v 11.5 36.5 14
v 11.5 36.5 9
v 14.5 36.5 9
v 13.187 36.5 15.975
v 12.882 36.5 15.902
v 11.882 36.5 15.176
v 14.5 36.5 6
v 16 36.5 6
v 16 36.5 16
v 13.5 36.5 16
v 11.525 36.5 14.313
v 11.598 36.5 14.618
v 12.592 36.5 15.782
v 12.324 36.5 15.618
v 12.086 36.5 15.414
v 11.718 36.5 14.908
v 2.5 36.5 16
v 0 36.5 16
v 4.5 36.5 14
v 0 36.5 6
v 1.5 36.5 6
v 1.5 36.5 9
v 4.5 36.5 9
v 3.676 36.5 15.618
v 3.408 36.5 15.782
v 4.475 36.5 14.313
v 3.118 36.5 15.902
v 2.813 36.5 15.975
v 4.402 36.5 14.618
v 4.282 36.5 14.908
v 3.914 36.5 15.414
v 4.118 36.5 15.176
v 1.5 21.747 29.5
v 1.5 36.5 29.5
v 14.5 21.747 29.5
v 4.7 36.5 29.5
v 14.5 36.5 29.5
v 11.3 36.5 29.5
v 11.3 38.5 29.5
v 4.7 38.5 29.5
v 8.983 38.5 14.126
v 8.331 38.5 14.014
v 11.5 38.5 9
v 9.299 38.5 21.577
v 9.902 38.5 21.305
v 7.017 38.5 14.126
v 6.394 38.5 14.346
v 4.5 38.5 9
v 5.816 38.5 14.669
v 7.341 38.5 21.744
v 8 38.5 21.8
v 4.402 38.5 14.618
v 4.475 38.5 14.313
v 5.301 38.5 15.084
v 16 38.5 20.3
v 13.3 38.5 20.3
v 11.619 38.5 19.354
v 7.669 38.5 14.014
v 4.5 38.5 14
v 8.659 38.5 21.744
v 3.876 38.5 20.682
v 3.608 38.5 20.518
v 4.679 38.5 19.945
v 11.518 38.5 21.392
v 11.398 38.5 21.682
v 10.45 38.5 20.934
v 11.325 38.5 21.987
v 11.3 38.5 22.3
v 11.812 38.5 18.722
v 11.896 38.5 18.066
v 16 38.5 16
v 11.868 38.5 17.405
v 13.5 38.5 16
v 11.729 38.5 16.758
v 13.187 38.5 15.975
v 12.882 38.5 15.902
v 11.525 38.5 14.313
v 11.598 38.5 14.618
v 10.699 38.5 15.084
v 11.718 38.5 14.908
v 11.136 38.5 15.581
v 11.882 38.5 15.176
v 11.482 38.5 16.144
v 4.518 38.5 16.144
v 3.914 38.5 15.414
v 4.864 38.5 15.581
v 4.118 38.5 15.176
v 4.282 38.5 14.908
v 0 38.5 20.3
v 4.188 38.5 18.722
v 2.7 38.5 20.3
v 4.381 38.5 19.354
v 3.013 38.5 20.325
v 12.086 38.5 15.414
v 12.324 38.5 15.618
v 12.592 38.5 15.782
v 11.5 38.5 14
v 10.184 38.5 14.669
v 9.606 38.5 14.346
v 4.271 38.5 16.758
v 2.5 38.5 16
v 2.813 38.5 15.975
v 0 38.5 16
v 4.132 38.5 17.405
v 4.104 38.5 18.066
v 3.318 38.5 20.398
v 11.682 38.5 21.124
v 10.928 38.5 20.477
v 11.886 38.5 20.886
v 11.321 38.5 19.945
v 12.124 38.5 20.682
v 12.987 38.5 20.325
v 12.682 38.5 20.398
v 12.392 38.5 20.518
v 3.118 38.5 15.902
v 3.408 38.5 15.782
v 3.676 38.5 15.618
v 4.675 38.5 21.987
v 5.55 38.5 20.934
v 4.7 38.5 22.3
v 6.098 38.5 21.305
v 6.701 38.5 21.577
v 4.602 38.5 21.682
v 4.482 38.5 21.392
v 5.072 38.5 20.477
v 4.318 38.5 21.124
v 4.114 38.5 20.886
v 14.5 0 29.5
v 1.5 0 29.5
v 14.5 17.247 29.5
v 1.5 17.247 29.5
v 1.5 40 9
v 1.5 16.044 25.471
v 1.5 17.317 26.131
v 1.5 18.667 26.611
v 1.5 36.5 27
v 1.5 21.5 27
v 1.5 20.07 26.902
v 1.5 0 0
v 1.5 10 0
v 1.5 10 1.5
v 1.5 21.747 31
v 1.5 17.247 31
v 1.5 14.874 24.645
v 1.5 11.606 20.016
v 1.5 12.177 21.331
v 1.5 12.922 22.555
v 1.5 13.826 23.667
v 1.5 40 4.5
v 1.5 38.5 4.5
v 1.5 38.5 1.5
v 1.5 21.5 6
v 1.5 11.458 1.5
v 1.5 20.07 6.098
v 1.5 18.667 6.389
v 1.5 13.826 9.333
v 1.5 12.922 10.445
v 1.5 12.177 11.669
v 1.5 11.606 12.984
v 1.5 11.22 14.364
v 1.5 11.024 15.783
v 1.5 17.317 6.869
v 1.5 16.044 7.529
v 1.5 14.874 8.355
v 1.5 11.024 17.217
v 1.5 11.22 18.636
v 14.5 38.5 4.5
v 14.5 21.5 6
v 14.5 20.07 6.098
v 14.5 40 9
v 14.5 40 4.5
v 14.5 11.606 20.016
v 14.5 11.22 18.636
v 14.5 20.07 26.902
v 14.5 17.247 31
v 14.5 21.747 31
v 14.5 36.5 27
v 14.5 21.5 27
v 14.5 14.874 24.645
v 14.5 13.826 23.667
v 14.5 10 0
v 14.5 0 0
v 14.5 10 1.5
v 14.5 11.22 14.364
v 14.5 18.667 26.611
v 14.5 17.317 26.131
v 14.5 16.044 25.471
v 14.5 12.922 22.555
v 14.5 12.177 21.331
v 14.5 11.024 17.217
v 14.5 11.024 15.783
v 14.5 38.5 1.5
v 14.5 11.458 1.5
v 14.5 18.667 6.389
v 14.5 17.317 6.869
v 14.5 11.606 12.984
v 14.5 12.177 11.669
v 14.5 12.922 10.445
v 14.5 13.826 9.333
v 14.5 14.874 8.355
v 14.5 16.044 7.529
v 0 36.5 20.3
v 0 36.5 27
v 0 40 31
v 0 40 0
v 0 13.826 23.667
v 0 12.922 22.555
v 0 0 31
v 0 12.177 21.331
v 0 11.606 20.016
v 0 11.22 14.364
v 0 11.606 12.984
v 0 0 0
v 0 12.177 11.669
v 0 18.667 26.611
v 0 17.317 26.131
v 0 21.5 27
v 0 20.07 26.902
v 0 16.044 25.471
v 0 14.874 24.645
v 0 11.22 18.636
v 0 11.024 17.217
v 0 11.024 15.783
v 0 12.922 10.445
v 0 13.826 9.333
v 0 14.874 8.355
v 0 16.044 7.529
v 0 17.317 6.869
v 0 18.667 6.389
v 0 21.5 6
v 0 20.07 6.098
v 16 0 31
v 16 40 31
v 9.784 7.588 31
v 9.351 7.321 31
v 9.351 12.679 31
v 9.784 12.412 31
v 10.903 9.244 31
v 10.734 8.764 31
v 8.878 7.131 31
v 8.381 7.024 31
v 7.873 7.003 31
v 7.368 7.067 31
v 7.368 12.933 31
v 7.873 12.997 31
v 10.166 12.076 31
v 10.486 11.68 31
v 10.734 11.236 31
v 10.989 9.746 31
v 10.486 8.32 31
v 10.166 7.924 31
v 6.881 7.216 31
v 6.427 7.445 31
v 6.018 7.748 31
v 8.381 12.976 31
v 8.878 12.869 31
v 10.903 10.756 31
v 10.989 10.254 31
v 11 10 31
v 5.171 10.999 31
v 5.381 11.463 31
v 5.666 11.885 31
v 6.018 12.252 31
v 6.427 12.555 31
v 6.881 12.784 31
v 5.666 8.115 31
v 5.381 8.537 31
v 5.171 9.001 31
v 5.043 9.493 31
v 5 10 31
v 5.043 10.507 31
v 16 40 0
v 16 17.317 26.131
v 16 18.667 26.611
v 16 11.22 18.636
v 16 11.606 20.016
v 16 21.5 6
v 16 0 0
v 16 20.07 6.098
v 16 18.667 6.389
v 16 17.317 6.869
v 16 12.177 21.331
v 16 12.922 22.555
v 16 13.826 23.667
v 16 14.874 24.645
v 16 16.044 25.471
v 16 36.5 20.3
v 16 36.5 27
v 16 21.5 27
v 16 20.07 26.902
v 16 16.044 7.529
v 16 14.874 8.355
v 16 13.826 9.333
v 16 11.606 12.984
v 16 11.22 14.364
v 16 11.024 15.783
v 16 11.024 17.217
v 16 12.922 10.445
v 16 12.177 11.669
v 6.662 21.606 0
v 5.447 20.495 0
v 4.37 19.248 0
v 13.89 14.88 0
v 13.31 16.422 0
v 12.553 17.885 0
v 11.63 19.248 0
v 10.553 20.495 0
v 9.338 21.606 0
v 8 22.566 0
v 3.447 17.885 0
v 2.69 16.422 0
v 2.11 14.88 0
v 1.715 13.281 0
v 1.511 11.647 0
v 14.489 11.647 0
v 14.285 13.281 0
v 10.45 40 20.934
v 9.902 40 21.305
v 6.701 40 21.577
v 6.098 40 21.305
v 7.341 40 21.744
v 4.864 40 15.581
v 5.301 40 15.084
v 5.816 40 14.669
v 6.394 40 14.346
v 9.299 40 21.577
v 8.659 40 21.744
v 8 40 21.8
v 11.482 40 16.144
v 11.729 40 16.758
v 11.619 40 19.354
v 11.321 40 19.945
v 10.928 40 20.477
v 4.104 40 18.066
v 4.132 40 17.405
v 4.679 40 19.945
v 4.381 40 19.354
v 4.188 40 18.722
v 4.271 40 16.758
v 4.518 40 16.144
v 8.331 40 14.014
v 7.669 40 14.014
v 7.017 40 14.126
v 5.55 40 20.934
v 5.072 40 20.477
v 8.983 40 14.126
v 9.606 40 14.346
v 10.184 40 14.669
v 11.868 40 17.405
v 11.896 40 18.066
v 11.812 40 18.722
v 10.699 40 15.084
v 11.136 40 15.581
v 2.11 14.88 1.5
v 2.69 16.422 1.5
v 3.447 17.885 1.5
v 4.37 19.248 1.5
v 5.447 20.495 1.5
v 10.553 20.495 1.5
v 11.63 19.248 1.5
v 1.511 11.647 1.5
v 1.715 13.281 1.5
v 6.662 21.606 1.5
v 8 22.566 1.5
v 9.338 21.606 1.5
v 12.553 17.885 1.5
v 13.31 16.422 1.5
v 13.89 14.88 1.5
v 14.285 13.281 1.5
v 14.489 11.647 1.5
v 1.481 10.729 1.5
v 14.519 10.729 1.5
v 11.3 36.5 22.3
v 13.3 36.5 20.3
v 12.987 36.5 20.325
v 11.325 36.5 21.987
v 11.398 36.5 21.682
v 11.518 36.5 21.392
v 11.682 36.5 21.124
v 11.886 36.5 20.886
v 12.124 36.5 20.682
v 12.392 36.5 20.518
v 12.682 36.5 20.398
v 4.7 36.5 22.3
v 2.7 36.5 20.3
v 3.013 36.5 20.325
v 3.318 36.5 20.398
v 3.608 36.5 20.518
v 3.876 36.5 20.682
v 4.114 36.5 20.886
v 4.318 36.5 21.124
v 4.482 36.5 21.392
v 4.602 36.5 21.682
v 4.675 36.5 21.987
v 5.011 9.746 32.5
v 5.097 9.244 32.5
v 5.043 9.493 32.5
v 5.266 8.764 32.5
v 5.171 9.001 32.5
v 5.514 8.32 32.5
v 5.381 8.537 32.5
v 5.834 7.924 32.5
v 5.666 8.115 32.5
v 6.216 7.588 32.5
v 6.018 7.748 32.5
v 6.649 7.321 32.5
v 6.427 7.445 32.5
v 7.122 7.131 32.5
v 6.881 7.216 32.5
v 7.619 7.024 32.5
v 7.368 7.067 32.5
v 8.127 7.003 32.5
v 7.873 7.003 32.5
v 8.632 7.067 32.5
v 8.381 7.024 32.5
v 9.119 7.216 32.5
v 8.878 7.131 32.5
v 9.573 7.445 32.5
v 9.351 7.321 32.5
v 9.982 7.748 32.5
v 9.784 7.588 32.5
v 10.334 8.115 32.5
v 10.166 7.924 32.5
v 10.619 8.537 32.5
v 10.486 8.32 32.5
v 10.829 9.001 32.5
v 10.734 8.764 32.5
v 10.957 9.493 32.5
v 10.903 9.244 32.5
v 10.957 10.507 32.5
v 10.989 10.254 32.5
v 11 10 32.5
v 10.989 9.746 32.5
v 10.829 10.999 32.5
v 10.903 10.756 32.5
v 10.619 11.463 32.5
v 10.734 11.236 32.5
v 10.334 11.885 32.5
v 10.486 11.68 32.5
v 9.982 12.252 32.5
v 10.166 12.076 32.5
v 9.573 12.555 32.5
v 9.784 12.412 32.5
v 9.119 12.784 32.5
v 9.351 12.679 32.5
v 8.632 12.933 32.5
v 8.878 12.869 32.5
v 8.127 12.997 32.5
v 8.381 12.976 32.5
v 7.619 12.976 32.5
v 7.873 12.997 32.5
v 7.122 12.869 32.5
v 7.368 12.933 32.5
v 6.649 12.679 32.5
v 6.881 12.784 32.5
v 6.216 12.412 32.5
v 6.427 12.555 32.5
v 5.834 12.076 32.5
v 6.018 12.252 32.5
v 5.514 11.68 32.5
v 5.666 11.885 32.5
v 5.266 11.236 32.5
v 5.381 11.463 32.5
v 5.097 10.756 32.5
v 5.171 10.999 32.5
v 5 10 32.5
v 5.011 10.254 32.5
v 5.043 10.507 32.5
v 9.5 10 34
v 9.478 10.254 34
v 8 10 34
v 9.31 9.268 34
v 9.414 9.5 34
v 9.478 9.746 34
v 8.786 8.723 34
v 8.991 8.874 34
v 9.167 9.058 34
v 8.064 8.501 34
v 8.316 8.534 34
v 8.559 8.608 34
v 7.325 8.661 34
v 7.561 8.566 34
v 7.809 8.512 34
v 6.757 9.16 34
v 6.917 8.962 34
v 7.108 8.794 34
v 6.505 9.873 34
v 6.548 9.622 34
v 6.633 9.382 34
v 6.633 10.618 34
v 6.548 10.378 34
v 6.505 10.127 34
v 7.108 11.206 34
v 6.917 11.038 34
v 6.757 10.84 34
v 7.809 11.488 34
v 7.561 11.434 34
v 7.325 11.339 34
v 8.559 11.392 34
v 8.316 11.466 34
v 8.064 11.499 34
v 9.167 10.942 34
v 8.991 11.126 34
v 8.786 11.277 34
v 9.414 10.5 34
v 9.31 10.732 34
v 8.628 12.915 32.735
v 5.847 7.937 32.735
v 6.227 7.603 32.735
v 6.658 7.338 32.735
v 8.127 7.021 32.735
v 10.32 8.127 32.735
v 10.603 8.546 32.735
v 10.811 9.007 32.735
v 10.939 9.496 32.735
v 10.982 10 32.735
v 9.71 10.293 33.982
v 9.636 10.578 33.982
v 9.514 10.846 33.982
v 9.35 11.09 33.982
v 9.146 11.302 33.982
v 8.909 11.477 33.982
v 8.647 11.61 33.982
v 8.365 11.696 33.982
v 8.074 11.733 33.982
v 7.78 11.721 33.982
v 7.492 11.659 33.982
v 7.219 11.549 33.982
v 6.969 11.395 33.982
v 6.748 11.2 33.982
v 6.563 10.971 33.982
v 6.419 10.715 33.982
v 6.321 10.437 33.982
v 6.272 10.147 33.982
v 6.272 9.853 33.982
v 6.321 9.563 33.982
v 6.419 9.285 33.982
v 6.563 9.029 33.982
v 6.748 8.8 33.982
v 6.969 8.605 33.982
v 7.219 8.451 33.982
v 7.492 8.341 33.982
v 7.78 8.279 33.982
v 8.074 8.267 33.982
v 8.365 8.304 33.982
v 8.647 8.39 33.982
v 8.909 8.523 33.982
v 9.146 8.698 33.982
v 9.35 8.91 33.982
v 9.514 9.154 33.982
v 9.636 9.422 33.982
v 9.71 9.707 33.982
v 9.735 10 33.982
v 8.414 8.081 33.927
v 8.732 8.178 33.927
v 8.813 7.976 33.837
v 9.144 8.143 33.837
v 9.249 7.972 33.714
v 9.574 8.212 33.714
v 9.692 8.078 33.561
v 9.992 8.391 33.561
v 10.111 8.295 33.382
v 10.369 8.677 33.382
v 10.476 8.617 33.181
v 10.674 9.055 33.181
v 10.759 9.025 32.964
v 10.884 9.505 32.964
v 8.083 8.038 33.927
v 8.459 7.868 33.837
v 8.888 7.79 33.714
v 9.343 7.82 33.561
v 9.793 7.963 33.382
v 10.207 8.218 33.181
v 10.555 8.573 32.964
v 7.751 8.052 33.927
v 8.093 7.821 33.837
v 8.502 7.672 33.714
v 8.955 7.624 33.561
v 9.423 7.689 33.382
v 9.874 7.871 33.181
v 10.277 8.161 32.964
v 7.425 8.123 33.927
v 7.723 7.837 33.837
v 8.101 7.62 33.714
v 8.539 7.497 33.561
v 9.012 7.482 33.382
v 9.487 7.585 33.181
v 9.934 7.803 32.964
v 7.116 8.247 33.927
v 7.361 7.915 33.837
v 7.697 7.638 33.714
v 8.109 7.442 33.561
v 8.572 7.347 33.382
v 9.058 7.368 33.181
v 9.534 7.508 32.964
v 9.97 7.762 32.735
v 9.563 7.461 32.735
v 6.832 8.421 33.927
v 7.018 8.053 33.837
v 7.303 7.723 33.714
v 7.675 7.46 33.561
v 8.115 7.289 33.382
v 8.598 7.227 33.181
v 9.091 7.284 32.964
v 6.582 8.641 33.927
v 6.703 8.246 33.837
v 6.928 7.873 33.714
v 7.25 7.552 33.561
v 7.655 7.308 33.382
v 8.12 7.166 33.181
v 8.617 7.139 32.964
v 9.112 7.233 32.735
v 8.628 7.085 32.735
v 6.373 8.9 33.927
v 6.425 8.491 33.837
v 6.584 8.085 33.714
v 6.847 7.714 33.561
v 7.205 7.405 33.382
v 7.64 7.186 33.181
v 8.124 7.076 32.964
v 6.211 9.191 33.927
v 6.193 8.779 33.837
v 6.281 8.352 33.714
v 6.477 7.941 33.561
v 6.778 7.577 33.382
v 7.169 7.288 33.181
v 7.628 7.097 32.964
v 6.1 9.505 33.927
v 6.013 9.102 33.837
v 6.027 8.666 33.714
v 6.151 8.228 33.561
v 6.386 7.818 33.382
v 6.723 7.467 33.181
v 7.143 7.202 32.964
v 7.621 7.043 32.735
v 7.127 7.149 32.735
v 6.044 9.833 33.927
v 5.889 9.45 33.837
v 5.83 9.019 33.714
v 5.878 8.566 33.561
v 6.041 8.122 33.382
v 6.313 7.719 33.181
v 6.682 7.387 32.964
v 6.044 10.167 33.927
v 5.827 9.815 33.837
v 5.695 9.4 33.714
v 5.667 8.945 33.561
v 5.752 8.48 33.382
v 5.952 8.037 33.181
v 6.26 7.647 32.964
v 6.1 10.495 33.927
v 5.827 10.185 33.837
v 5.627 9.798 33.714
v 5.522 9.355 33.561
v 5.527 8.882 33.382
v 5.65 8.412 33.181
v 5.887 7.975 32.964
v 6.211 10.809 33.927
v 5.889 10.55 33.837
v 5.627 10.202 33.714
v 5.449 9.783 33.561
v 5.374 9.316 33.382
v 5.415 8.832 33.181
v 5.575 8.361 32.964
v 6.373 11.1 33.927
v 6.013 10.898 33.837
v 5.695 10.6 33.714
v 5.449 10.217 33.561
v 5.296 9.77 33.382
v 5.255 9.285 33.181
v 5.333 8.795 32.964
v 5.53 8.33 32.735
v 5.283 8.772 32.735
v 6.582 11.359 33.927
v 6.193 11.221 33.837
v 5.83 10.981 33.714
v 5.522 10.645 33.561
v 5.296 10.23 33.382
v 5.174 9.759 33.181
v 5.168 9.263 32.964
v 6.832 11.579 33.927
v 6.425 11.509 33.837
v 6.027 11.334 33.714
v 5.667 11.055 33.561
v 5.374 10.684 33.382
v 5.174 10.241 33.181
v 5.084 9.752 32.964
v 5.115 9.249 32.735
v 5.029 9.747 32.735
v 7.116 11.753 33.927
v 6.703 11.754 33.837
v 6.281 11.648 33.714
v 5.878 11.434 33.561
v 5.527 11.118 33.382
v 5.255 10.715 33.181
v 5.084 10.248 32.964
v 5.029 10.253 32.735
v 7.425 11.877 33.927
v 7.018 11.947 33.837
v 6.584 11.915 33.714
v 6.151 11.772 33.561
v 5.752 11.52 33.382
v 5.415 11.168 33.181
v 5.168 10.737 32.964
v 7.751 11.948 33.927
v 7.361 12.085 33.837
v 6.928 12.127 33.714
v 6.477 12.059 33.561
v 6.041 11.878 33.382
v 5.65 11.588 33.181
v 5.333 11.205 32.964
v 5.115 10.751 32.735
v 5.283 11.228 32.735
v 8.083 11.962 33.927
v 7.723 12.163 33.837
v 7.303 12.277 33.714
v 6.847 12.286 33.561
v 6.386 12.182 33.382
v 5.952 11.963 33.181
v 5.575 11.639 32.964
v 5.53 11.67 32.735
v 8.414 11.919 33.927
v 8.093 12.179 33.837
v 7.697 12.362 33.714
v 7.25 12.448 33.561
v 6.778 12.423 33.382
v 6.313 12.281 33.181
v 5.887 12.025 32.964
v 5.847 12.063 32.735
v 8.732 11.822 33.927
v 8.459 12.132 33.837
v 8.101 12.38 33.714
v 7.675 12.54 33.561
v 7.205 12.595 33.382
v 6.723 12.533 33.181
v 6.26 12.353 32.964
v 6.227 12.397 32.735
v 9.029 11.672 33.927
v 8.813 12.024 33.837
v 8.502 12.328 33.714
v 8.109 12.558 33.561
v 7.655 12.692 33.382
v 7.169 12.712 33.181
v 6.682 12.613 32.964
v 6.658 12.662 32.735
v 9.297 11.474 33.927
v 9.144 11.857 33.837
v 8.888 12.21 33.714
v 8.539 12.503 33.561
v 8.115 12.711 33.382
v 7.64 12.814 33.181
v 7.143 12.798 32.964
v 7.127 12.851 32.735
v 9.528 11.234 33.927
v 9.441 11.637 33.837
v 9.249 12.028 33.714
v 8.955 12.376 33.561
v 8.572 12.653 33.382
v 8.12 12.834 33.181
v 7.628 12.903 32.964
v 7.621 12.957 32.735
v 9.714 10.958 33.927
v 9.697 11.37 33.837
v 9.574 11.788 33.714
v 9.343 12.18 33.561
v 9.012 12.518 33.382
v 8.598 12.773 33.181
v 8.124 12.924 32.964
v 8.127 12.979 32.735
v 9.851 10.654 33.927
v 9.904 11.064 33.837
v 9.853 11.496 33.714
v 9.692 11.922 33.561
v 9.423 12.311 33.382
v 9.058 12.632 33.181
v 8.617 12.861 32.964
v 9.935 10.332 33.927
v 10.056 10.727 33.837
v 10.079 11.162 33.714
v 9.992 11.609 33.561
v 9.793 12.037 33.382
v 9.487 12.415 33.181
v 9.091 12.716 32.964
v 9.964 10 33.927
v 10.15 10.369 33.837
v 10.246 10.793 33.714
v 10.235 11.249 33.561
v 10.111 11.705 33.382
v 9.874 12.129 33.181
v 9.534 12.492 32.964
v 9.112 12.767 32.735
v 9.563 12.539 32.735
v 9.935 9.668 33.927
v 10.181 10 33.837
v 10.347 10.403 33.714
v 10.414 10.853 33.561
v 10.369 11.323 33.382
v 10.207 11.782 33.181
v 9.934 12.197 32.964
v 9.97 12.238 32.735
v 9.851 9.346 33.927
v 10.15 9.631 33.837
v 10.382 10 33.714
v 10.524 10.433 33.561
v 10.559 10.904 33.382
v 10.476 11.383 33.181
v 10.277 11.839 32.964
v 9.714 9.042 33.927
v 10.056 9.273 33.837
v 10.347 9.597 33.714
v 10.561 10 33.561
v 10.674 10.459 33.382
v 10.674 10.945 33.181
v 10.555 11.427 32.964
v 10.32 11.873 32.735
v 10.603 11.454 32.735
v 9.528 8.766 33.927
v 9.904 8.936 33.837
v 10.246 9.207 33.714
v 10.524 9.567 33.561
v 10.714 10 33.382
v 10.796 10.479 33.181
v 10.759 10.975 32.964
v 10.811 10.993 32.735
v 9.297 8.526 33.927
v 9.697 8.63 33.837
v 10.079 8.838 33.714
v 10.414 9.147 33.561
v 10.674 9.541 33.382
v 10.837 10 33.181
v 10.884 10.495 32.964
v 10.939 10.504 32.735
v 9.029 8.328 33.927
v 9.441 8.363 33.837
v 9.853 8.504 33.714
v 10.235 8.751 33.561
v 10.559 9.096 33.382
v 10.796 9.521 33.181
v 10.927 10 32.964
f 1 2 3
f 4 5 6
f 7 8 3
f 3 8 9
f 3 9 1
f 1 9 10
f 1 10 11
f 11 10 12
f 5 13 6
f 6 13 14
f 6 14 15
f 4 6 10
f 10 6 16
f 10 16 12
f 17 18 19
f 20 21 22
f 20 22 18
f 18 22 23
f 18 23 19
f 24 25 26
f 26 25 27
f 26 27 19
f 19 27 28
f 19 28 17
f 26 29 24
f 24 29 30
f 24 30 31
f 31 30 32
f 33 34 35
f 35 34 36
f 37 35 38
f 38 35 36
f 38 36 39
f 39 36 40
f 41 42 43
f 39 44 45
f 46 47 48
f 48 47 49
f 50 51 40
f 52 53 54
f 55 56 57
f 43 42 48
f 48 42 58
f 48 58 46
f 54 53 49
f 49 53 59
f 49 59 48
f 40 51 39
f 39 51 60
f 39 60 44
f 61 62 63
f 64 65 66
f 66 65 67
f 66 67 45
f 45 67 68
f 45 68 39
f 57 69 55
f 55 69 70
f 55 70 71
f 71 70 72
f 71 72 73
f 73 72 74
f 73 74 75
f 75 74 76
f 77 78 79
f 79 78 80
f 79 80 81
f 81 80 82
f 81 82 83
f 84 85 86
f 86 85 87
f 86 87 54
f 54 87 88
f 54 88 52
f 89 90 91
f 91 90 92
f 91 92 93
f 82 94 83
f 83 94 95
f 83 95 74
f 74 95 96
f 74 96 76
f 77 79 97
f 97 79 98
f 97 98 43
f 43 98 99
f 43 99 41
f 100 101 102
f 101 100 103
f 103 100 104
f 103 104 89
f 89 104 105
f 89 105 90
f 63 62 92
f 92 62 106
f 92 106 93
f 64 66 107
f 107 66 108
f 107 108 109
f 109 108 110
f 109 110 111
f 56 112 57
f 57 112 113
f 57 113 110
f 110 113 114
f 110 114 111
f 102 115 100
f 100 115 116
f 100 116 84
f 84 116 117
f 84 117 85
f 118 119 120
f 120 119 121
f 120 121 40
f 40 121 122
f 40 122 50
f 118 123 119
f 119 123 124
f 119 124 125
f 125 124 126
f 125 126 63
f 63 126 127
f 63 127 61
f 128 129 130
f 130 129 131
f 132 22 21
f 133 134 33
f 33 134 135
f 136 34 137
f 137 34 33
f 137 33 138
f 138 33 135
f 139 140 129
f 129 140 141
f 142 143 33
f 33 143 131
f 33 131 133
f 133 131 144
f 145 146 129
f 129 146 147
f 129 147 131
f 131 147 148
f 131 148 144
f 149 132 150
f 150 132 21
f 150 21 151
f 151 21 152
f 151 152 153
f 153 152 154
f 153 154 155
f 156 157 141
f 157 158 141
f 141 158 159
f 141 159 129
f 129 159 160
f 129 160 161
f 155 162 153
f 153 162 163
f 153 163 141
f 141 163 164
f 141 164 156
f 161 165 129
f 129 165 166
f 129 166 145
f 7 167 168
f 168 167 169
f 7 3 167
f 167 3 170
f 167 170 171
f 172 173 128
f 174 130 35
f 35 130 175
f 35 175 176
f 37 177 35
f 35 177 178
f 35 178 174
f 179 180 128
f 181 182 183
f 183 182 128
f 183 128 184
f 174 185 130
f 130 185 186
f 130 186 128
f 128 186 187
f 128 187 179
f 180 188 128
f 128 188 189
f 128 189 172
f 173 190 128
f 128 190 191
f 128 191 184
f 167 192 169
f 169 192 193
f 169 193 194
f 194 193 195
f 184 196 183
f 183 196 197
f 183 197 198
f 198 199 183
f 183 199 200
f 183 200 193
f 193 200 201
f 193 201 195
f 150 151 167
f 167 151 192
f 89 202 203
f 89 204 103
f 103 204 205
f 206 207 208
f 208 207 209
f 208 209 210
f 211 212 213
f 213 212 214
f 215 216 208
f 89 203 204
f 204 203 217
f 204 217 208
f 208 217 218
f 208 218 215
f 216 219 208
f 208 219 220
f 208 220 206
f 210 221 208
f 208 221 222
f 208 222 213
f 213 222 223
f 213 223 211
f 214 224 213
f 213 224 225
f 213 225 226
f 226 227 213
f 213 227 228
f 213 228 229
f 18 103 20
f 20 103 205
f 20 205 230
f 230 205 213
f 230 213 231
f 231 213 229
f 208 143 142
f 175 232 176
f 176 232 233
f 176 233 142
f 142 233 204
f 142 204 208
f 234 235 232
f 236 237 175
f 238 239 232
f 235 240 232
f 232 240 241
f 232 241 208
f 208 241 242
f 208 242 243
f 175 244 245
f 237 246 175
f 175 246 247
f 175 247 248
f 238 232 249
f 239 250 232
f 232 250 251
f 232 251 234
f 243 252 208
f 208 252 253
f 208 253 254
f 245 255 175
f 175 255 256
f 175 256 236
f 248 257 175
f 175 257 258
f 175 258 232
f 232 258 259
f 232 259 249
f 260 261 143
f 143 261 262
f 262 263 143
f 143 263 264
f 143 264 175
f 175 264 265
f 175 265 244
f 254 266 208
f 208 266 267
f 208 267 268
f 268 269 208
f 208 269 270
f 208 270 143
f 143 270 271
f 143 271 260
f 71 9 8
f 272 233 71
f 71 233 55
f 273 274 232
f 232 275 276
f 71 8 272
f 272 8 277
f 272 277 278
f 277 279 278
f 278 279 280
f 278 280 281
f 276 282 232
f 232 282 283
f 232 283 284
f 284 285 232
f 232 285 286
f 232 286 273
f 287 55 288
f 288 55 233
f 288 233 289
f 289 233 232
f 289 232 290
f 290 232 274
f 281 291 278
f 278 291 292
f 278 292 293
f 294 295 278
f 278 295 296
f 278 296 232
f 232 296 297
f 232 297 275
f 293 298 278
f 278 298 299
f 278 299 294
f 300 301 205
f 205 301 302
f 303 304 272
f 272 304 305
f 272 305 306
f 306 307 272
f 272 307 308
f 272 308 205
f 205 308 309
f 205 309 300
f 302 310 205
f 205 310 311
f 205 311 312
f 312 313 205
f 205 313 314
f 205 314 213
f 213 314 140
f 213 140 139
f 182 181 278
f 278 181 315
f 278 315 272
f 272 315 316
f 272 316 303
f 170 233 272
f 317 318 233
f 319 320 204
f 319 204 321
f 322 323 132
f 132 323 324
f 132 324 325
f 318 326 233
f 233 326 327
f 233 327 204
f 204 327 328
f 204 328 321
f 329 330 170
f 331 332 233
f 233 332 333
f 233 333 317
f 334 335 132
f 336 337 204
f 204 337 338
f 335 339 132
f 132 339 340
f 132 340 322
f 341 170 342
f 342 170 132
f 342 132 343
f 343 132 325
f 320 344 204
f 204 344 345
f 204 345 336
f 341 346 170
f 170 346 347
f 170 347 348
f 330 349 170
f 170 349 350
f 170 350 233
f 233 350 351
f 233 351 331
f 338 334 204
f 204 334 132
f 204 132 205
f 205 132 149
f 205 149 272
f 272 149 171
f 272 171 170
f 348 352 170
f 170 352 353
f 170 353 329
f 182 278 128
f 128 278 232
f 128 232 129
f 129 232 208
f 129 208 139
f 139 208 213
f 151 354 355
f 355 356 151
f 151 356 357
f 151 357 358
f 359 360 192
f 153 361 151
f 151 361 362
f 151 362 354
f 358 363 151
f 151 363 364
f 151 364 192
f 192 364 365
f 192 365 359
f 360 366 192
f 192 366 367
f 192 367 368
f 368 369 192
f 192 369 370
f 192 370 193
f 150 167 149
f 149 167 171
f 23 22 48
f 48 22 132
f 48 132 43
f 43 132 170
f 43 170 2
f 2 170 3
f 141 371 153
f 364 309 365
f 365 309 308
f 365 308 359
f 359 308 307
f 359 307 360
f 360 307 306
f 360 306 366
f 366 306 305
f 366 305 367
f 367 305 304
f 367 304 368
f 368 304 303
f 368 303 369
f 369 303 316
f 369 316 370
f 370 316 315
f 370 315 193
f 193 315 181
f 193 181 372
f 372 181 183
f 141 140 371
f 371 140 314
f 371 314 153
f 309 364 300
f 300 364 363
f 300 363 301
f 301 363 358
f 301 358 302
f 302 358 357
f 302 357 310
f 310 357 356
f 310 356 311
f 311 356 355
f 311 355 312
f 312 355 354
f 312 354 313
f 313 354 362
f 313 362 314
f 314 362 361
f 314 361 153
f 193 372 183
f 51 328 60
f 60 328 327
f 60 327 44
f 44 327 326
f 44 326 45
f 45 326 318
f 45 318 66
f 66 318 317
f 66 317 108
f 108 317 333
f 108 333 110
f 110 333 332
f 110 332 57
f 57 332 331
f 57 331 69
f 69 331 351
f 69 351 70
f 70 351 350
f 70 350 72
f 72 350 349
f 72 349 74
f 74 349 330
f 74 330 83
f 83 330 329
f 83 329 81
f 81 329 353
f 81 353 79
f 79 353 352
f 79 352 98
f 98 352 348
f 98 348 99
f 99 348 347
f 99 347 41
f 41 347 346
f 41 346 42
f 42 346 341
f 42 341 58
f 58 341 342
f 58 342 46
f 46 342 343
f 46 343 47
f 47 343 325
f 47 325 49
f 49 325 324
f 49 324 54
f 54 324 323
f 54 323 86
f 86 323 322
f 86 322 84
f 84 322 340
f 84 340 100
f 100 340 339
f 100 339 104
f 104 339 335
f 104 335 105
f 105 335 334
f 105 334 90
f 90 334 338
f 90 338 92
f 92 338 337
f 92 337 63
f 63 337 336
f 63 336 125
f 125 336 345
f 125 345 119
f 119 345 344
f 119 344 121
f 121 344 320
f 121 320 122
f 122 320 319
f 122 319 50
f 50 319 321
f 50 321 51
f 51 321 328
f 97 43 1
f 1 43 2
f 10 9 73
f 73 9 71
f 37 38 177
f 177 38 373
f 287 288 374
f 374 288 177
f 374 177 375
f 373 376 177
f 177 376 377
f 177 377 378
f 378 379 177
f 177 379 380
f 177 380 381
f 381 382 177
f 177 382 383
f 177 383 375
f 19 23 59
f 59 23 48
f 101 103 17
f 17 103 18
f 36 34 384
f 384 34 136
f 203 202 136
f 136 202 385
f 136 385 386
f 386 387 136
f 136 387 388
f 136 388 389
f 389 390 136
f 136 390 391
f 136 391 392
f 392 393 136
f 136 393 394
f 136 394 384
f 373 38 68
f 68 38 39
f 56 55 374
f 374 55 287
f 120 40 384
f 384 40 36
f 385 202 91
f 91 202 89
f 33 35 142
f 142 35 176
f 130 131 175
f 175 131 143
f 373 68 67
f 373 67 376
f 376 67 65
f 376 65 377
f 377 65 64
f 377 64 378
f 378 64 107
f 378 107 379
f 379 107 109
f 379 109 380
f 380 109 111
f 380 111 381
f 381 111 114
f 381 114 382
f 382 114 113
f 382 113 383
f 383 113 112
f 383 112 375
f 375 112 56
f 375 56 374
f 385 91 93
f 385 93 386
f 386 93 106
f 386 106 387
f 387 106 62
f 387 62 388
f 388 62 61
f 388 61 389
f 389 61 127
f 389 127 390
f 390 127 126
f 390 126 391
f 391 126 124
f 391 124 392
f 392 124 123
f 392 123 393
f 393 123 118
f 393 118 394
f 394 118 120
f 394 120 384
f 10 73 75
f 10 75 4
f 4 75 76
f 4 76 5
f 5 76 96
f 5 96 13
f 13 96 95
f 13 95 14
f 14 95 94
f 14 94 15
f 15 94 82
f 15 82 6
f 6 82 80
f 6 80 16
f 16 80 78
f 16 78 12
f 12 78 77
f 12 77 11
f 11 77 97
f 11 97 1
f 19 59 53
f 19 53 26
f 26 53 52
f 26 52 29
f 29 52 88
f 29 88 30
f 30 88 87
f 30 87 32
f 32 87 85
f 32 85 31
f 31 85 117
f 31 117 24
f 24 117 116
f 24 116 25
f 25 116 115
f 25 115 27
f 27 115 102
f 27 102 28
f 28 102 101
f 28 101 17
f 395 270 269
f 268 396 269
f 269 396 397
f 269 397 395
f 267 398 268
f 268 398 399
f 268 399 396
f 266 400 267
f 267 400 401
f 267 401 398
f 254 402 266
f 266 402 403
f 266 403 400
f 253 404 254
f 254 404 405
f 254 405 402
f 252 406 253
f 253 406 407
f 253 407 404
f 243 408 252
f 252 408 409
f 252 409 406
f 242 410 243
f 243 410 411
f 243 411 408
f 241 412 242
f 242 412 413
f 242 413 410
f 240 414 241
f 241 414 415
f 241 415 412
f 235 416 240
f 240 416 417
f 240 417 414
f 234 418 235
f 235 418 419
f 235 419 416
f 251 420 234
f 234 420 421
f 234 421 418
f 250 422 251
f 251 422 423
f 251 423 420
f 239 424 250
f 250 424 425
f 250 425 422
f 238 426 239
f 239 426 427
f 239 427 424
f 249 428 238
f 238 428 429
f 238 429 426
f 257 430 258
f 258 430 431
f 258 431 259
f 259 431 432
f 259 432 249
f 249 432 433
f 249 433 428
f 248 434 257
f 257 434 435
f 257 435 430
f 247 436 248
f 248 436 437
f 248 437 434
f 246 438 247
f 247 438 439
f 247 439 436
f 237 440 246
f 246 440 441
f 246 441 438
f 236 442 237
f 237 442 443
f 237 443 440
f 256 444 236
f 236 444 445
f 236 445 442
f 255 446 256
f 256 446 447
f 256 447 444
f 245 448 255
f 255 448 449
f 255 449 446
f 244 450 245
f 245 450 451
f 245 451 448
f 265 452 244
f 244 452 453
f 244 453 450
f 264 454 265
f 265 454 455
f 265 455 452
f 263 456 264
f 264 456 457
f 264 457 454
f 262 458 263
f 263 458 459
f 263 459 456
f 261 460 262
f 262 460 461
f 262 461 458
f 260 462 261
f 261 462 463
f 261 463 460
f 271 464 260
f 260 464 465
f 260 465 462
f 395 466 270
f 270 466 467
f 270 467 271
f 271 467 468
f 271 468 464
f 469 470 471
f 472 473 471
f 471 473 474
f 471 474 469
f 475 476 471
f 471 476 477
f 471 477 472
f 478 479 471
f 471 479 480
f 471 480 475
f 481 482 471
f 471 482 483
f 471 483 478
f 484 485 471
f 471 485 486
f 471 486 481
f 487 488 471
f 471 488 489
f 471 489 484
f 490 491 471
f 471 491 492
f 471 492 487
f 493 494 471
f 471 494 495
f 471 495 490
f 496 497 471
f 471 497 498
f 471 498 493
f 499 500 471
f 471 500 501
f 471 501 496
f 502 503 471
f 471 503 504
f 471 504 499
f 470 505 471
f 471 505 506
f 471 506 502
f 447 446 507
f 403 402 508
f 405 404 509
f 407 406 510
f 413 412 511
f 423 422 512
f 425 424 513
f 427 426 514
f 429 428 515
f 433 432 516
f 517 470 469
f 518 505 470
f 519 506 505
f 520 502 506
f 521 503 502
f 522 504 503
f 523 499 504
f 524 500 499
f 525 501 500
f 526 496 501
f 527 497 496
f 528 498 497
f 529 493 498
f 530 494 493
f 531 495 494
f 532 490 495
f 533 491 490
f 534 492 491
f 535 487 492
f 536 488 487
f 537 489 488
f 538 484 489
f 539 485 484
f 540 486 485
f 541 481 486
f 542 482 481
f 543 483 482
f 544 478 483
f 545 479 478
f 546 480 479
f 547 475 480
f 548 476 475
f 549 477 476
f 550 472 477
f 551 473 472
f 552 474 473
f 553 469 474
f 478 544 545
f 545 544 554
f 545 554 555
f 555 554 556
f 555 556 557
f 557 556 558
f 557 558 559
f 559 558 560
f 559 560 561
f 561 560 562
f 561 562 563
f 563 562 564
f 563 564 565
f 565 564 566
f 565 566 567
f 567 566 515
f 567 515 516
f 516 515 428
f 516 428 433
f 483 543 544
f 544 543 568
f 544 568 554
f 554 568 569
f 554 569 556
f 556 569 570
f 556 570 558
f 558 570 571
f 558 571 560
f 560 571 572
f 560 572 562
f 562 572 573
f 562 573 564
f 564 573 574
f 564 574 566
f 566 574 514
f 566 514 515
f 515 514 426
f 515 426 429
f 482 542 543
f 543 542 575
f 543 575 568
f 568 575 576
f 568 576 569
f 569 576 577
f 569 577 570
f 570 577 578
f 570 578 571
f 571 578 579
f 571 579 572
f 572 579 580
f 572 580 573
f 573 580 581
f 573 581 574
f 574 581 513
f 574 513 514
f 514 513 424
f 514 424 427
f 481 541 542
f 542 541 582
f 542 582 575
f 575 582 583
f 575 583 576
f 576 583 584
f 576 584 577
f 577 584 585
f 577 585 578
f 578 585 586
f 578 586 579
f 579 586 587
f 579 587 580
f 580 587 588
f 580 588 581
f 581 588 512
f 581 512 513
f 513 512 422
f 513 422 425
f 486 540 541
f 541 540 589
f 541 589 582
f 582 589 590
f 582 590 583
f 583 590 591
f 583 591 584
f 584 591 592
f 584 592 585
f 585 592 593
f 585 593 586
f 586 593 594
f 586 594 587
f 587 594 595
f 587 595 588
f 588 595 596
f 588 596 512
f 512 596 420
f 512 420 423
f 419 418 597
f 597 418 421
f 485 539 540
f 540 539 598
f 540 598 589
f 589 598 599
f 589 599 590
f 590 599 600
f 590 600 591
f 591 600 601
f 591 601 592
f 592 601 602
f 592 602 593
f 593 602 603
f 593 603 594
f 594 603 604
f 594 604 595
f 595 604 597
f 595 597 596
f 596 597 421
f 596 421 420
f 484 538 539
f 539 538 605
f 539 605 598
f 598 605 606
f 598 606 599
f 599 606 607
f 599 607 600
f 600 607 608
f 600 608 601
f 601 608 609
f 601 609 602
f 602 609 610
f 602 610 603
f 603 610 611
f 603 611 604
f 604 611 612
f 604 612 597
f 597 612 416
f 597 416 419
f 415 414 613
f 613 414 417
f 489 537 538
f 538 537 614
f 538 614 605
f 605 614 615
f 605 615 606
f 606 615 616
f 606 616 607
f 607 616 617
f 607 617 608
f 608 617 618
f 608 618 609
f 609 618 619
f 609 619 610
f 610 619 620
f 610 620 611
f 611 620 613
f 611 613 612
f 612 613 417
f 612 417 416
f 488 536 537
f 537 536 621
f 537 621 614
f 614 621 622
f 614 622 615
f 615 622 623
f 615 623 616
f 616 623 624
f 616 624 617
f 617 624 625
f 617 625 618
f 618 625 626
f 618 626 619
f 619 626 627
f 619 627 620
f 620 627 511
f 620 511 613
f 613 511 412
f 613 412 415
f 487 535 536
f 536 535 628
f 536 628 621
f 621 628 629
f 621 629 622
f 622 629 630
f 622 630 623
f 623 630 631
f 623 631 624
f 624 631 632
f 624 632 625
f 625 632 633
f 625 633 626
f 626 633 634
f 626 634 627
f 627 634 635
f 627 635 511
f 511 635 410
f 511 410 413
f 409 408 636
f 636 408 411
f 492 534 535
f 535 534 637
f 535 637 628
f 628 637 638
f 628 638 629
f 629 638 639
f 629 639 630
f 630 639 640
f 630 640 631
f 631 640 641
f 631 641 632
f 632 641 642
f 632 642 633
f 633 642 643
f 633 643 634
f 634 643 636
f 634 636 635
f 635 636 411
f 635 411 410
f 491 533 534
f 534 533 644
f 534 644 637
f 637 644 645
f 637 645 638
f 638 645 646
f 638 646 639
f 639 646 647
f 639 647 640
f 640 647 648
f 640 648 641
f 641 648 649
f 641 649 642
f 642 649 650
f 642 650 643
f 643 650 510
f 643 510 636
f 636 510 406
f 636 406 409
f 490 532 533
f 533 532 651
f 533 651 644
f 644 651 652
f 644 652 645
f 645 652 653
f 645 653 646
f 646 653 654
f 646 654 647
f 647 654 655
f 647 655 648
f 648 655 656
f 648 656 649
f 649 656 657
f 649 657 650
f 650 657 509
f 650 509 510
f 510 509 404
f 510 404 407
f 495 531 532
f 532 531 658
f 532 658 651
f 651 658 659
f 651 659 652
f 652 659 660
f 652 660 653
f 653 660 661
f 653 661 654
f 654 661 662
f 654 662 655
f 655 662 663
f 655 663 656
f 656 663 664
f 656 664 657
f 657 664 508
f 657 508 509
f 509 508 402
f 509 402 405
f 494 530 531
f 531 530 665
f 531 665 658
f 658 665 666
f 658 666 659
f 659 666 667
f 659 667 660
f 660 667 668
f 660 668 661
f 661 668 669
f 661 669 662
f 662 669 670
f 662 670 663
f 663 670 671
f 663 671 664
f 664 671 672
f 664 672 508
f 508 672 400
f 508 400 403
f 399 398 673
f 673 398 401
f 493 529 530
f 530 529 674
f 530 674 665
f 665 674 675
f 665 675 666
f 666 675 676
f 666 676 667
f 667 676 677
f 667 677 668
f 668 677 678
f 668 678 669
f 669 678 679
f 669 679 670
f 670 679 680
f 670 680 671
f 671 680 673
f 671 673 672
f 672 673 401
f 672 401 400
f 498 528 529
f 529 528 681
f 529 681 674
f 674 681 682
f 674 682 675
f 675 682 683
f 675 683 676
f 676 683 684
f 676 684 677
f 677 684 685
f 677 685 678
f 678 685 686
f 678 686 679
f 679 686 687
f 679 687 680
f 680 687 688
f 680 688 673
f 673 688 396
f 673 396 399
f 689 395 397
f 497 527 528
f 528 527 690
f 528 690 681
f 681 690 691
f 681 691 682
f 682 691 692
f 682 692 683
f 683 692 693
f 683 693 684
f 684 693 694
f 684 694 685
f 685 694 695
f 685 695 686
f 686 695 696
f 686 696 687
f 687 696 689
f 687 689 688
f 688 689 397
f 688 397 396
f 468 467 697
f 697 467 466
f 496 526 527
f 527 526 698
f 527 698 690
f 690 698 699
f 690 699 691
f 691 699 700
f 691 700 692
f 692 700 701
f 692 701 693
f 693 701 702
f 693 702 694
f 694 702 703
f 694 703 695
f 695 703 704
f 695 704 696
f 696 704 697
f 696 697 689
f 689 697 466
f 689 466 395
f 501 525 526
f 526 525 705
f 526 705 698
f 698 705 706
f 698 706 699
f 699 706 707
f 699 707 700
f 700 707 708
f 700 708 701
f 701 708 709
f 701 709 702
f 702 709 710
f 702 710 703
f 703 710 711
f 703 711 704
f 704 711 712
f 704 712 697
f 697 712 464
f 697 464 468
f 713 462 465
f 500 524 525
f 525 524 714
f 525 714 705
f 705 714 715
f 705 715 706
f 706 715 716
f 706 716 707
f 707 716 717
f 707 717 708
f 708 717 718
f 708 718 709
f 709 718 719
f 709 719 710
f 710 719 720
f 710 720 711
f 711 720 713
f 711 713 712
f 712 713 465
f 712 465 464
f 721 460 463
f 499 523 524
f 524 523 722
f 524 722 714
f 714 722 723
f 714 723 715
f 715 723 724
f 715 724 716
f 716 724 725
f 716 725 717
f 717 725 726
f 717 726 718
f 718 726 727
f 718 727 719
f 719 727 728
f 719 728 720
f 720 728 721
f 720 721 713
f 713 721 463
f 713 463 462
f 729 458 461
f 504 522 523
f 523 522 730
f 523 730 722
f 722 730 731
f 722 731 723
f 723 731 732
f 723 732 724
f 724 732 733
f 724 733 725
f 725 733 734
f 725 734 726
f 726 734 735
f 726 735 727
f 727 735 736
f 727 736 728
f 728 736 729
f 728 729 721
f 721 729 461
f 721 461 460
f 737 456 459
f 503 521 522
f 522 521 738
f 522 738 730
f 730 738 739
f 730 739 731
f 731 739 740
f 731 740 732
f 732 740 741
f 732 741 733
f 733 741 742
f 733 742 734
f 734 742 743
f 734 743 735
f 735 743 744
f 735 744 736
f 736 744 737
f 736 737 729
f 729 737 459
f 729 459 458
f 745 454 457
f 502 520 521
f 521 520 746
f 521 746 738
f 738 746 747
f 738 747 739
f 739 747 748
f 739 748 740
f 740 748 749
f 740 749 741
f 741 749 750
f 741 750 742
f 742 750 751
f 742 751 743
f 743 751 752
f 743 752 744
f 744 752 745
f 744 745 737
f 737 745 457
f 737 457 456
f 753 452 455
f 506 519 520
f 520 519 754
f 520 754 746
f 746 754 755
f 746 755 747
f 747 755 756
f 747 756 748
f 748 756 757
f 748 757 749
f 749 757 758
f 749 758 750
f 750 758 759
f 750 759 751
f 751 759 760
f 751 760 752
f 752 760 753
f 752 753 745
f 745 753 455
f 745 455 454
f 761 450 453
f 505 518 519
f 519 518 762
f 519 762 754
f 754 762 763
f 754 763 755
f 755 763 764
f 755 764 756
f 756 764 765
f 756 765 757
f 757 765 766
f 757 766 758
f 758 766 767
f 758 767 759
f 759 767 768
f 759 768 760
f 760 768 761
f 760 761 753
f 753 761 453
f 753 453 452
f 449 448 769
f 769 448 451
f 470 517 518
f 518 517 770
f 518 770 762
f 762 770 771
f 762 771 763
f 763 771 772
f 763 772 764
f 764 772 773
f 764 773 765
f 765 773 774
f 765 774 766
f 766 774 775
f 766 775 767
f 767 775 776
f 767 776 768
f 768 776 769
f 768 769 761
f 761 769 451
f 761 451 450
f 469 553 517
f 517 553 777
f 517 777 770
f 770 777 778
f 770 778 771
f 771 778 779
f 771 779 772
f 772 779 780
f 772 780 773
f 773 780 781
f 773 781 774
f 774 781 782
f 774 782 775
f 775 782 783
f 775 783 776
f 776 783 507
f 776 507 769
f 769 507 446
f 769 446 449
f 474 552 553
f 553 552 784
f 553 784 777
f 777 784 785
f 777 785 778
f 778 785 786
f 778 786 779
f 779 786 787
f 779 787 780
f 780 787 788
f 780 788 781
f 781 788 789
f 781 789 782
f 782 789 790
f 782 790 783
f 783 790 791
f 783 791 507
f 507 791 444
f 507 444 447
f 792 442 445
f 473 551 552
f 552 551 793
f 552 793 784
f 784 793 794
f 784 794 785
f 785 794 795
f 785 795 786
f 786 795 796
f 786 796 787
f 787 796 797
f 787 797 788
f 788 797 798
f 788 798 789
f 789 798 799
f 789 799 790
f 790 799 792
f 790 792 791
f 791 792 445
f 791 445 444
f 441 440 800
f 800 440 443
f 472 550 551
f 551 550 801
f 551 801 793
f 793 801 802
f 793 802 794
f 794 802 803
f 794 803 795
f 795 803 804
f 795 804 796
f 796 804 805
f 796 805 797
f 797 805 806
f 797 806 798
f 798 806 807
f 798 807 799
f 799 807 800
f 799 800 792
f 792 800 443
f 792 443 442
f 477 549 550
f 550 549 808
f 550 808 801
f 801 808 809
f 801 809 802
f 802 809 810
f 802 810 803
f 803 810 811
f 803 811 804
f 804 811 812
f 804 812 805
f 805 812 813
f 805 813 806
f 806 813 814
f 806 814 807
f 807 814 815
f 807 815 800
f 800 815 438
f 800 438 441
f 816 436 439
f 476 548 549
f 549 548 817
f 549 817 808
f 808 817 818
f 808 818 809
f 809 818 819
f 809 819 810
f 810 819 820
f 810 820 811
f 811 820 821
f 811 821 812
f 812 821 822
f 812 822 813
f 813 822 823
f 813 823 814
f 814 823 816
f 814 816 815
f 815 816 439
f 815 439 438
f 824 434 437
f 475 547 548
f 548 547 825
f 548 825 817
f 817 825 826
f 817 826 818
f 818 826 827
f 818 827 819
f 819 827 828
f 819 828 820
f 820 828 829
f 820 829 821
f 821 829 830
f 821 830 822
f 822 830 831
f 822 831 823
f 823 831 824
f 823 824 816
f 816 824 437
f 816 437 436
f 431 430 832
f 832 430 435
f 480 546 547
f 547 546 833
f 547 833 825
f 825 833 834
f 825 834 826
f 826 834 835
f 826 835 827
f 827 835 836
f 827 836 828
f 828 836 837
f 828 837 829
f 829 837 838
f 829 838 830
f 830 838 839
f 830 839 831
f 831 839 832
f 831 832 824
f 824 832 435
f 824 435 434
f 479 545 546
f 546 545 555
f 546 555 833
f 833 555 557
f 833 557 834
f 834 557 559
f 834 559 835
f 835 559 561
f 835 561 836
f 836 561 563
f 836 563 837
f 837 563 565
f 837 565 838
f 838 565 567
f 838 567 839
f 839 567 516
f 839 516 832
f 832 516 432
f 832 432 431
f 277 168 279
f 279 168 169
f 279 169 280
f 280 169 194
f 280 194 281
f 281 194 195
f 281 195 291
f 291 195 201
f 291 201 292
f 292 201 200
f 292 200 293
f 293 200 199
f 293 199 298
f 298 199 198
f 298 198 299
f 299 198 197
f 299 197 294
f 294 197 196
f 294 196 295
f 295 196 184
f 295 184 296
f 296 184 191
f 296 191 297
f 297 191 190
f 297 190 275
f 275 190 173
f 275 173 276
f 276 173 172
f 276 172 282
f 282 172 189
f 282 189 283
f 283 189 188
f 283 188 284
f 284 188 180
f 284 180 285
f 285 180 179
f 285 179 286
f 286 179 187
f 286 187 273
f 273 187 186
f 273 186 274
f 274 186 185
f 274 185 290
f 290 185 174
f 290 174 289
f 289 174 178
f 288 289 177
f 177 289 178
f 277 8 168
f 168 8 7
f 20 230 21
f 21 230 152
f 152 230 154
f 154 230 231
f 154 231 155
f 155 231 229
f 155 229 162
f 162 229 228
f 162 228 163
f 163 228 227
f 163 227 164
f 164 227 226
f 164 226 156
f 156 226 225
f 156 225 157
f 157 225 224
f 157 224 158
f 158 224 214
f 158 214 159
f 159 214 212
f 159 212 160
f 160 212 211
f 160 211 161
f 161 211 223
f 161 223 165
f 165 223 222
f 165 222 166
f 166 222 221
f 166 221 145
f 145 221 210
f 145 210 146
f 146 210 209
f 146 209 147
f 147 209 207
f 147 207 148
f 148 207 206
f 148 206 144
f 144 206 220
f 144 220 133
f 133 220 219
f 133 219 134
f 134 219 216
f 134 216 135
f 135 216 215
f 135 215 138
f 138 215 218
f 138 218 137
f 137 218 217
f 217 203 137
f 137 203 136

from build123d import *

# Parameters (mm, degrees)
SKETCH1_W           = 16
SKETCH1_H           = 31
BOSS_EXTRUDE1_DEPTH = 40
SHELL1_T            = -1.5
SKETCH2_W           = 13
SKETCH2_H           = 4.5
CUT_EXTRUDE1_DEPTH  = 1.5
CUT_EXTRUDE2_DEPTH  = 1.5
SKETCH4_R           = 3.9
CUT_EXTRUDE3_DEPTH  = 1.5
SKETCH6_W           = 3
SKETCH6_H           = 7
BOSS_EXTRUDE2_DEPTH = 2
SKETCH7_W           = 3.2
SKETCH7_H           = 9.2
BOSS_EXTRUDE3_DEPTH = 2
SKETCH9_W           = 13
SKETCH9_H           = 4.5
CUT_EXTRUDE5_DEPTH  = 1.5
FILLET1_R           = 2
SKETCH10_R          = 3
BOSS_EXTRUDE4_DEPTH = 3
FILLET2_R           = 1.5
CUT_EXTRUDE6_DEPTH  = 55.881690936
SKETCH12_W          = 4.3
SKETCH12_H          = 2
CUT_EXTRUDE7_DEPTH  = 55.881690936


with BuildPart() as part:
    # Sketch1 → Boss-Extrude1 (new body)
    with BuildSketch(Plane(origin=(0, 0, 0), x_dir=(1, 0, 0), z_dir=(0, 1, 0))):
        with Locations((8, -15.5)):
            Rectangle(SKETCH1_W, SKETCH1_H)
    extrude(amount=BOSS_EXTRUDE1_DEPTH)

    # Shell1
    shell1_openings = [part.faces().sort_by_distance(p)[0] for p in [
        (8, 0, 15.5),
    ]]
    offset(amount=SHELL1_T, openings=shell1_openings, kind=Kind.INTERSECTION)

    # Sketch2 → Cut-Extrude1 (cut)
    with BuildSketch(Plane(origin=(0, 40, 0), x_dir=(1, 0, 0), z_dir=(0, 1, 0))):
        with Locations((8, -6.75)):
            Rectangle(SKETCH2_W, SKETCH2_H)
    extrude(amount=-CUT_EXTRUDE1_DEPTH, mode=Mode.SUBTRACT)

    # Sketch3 → Cut-Extrude2 (cut)
    with BuildSketch(Plane(origin=(0, 0, 0), x_dir=(-1, 0, 0), z_dir=(0, 0, -1))):
        with BuildLine():
            Line((-14.5, 10), (-14.5, -1))
            Line((-14.5, -1), (-1.5, -1))
            Line((-1.5, -1), (-1.5, 10))
            ThreePointArc((-1.5, 10), (-3.046805874, 17.164215382), (-8, 22.566479573))
            ThreePointArc((-8, 22.566479573), (-12.953194126, 17.164215382), (-14.5, 10))
        make_face()
    extrude(amount=-CUT_EXTRUDE2_DEPTH, mode=Mode.SUBTRACT)

    # Sketch4 → Cut-Extrude3 (cut)
    with BuildSketch(Plane(origin=(0, 40, 0), x_dir=(1, 0, 0), z_dir=(0, 1, 0))):
        with Locations(Location((8, -17.9, 0), (0, 0, 270))):
            Circle(SKETCH4_R)
    extrude(amount=-CUT_EXTRUDE3_DEPTH, mode=Mode.SUBTRACT)

    # Sketch6 → Boss-Extrude2 (add)
    with BuildSketch(Plane(origin=(0, 38.5, 0), x_dir=(-1, 0, 0), z_dir=(0, -1, 0))):
        with Locations((-13, -12.5)):
            Rectangle(SKETCH6_W, SKETCH6_H)
        with Locations((-3, -12.5)):
            Rectangle(SKETCH6_W, SKETCH6_H)
    extrude(amount=BOSS_EXTRUDE2_DEPTH)

    # Sketch7 → Boss-Extrude3 (add)
    with BuildSketch(Plane(origin=(0, 38.5, 0), x_dir=(-1, 0, 0), z_dir=(0, -1, 0))):
        with Locations((-12.9, -24.9)):
            Rectangle(SKETCH7_W, SKETCH7_H)
        with Locations((-3.1, -24.9)):
            Rectangle(SKETCH7_W, SKETCH7_H)
    extrude(amount=BOSS_EXTRUDE3_DEPTH)

    # Sketch9 → Cut-Extrude5 (cut)
    with BuildSketch(Plane.XY.offset(31)):
        with Locations((8, 19.497097074)):
            Rectangle(SKETCH9_W, SKETCH9_H)
    extrude(amount=-CUT_EXTRUDE5_DEPTH, mode=Mode.SUBTRACT)

    # Fillet1
    fillet1_edges = [part.edges().sort_by_distance(p)[0] for p in [
        (11.3, 37.5, 20.3),
        (4.7, 37.5, 20.3),
        (11.5, 37.5, 16),
        (4.5, 37.5, 16),
    ]]
    fillet(fillet1_edges, radius=FILLET1_R)

    # Sketch10 → Boss-Extrude4 (add)
    with BuildSketch(Plane.XY.offset(31)):
        with Locations((8, 10)):
            Circle(SKETCH10_R)
    extrude(amount=BOSS_EXTRUDE4_DEPTH)

    # Fillet2
    fillet2_edges = [part.edges().sort_by_distance(p)[0] for p in [
        (5, 10, 34),
    ]]
    fillet(fillet2_edges, radius=FILLET2_R)

    # Sketch11 → Cut-Extrude6 (cut, through all)
    with BuildSketch(Plane.ZY):
        with BuildLine():
            Line((6, 36.5), (27, 36.5))
            Line((27, 36.5), (27, 21.5))
            ThreePointArc((27, 21.5), (16.5, 11), (6, 21.5))
            Line((6, 21.5), (6, 36.5))
        make_face()
    extrude(amount=-CUT_EXTRUDE6_DEPTH, mode=Mode.SUBTRACT)

    # Sketch12 → Cut-Extrude7 (cut, through all)
    with BuildSketch(Plane(origin=(16, 0, 0), x_dir=(0, 0, -1), z_dir=(1, 0, 0))):
        with Locations((-18.15, 37.5)):
            Rectangle(SKETCH12_W, SKETCH12_H)
    extrude(amount=-CUT_EXTRUDE7_DEPTH, mode=Mode.SUBTRACT)


solid = part.part
